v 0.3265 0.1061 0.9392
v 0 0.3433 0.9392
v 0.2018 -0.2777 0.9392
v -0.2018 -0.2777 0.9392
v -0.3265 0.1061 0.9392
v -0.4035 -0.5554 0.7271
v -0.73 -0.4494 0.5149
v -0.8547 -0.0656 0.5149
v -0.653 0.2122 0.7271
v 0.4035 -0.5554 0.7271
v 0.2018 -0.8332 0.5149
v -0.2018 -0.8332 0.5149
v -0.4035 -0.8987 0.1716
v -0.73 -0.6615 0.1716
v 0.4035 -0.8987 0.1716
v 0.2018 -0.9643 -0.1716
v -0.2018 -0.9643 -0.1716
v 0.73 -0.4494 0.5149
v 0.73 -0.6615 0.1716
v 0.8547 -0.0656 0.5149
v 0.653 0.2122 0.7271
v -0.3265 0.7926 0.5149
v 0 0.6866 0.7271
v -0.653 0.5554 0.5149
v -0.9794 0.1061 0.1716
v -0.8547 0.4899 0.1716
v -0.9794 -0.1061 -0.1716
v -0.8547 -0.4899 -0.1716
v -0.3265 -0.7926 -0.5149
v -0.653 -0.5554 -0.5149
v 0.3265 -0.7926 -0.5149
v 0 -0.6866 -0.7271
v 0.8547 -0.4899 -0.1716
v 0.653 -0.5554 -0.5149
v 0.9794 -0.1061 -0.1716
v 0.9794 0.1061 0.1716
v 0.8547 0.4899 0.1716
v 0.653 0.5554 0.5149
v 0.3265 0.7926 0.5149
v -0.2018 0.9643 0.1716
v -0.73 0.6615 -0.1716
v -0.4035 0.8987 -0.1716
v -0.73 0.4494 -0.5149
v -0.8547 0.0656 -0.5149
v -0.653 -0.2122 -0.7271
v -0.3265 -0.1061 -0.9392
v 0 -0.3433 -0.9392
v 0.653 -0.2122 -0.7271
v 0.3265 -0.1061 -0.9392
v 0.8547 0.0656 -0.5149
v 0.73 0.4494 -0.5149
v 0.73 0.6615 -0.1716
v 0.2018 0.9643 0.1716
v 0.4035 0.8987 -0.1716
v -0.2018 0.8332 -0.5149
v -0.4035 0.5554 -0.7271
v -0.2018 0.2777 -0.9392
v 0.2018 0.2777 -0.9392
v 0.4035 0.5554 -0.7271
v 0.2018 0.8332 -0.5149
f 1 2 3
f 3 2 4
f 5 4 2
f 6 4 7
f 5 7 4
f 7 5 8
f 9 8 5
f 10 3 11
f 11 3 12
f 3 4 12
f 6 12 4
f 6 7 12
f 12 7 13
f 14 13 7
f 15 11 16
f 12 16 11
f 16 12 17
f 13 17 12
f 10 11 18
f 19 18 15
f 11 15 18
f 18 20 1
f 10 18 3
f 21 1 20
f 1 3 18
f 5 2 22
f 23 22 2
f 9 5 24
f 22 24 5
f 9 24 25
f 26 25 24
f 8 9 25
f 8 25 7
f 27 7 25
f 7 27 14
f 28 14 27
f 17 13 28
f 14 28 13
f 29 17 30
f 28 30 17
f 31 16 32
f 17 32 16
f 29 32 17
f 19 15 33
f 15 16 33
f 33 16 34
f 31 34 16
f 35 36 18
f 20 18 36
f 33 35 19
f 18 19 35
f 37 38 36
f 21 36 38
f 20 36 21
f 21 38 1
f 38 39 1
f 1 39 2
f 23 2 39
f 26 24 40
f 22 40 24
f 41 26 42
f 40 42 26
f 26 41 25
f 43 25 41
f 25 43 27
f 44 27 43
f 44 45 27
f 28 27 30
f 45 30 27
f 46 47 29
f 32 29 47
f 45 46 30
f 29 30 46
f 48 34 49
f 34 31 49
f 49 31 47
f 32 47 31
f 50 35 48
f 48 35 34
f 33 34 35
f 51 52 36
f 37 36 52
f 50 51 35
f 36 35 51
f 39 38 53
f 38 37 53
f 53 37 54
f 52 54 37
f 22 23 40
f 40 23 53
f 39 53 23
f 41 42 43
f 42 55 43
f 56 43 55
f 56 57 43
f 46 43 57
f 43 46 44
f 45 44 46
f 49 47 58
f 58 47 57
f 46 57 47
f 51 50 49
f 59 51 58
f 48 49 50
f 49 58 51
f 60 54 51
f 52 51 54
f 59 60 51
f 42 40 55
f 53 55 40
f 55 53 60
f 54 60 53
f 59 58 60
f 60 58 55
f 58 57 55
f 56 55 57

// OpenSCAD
polyhedron( points = [[-0.20177410622707, -0.277718231936888, 0.939233620314849], [-0.403548212363448, -0.555436463676171, 0.727075769798174], [-0.201774106240127, -0.833154695371105, 0.514917919315378], [0.201774106061412, -0.833154695379511, 0.514917919308958], [0.403548212244862, -0.555436463673805, 0.727075769799982], [0.201774106087527, -0.277718231936888, 0.939233620314849], [-0.326477361876644, 0.106078925078321, 0.939233620314849], [-0.652954723630076, 0.212157850328361, 0.727075769815693], [-0.85472882977189, -0.0655603813582432, 0.514917919307501], [-0.730025574160217, -0.449357538345818, 0.514917919286488], [-0.730025574149623, -0.661515388594251, 0.171639306288395], [-0.403548212367073, -0.898715076468814, 0.171639306278702], [-0.201774106237624, -0.964275457577153, -0.171639306776009], [0.201774106083402, -0.964275457588597, -0.171639306798353], [0.403548212268813, -0.898715076492999, 0.17163930622727], [0.730025574018547, -0.661515388848083, 0.171639306254828], [0.730025574068716, -0.449357538423256, 0.514917919312917], [0.854728829713239, -0.0655603814794469, 0.514917919346391], [0.652954723593999, 0.212157850257486, 0.727075769833585], [0.326477361756153, 0.10607892501969, 0.939233620314849], [-3.89470741676131e-11, 0.343278612830653, 0.939233620314849], [-0.652954723515089, 0.555436463312334, 0.514917919350608], [-0.854728829571266, 0.489876082096341, 0.171639306280591], [-0.979432085311308, 0.106078925162967, 0.171639306221544], [-0.979432085052371, -0.106078924717697, -0.171639306574695], [-0.85472882958466, -0.489876081786449, -0.17163930659733], [-0.652954723223501, -0.555436462849297, -0.514917919551311], [-0.326477361426697, -0.792636150723244, -0.514917919607481], [-1.54817060451608e-10, -0.686557225478389, -0.727075770077051], [0.326477361711021, -0.792636150856427, -0.514917919708642], [0.652954723486627, -0.555436463048275, -0.514917919625378], [0.854728829682936, -0.489876081943927, -0.17163930660327], [0.979432085244691, -0.106078925403328, -0.171639306753596], [0.979432085299315, 0.106078925033169, 0.171639306326942], [0.854728829656685, 0.489876081989954, 0.17163930633195], [0.652954723552974, 0.55543646330509, 0.514917919371225], [0.326477361682522, 0.792636151095918, 0.514917919398767], [1.17898390591217e-10, 0.686557225768726, 0.727075769905832], [-0.326477361622138, 0.792636151074558, 0.514917919378207], [-0.730025573705507, 0.661515388550539, -0.171639306675279], [-0.730025573569353, 0.449357538108192, -0.514917919682593], [-0.854728829306902, 0.0655603811702307, -0.514917919761479], [-0.652954723095754, -0.212157849655463, -0.727075769786536], [-0.326477361205215, -0.106078924360503, -0.939233620047254], [5.77092674146339e-10, -0.343278612189686, -0.939233620124582], [0.326477361419852, -0.106078924523425, -0.939233620110454], [0.652954723350554, -0.21215784988928, -0.727075769817376], [0.854728829449528, 0.0655603817660366, -0.514917919224013], [0.730025573817213, 0.449357537928101, -0.514917919702912], [0.730025573915219, 0.661515388445459, -0.171639306672047], [0.403548212097805, 0.898715076202506, -0.171639306664625], [0.201774105980605, 0.964275457529265, 0.171639306366918], [-0.201774105738622, 0.964275457420161, 0.171639306544471], [-0.403548211761438, 0.898715076237441, -0.171639306563799], [-0.20177410545081, 0.833154694917829, -0.514917919299468], [-0.403548211581499, 0.55543646324225, -0.727075769904889], [-0.201774105328058, 0.27771823147452, -0.939233620199811], [0.201774104555957, 0.277718231583414, -0.939233618475297], [0.40354820988555, 0.555436462870243, -0.727075766227282], [0.20177410588703, 0.833154694776668, -0.514917919612759]], faces = [[0, 5, 19, 20, 6], [0, 6, 7, 8, 9, 1], [0, 1, 2, 3, 4, 5], [1, 9, 10, 11, 2], [2, 11, 12, 13, 14, 3], [3, 14, 15, 16, 4], [4, 16, 17, 18, 19, 5], [6, 20, 37, 38, 21, 7], [7, 21, 22, 23, 8], [8, 23, 24, 25, 10, 9], [10, 25, 26, 27, 12, 11], [12, 27, 28, 29, 13], [13, 29, 30, 31, 15, 14], [15, 31, 32, 33, 17, 16], [17, 33, 34, 35, 18], [18, 35, 36, 37, 20, 19], [21, 38, 52, 53, 39, 22], [22, 39, 40, 41, 24, 23], [24, 41, 42, 26, 25], [26, 42, 43, 44, 28, 27], [28, 44, 45, 46, 30, 29], [30, 46, 47, 32, 31], [32, 47, 48, 49, 34, 33], [34, 49, 50, 51, 36, 35], [36, 51, 52, 38, 37], [39, 53, 54, 55, 40], [40, 55, 56, 43, 42, 41], [43, 56, 57, 45, 44], [45, 57, 58, 48, 47, 46], [48, 58, 59, 50, 49], [50, 59, 54, 53, 52, 51], [54, 59, 58, 57, 56, 55]]);
